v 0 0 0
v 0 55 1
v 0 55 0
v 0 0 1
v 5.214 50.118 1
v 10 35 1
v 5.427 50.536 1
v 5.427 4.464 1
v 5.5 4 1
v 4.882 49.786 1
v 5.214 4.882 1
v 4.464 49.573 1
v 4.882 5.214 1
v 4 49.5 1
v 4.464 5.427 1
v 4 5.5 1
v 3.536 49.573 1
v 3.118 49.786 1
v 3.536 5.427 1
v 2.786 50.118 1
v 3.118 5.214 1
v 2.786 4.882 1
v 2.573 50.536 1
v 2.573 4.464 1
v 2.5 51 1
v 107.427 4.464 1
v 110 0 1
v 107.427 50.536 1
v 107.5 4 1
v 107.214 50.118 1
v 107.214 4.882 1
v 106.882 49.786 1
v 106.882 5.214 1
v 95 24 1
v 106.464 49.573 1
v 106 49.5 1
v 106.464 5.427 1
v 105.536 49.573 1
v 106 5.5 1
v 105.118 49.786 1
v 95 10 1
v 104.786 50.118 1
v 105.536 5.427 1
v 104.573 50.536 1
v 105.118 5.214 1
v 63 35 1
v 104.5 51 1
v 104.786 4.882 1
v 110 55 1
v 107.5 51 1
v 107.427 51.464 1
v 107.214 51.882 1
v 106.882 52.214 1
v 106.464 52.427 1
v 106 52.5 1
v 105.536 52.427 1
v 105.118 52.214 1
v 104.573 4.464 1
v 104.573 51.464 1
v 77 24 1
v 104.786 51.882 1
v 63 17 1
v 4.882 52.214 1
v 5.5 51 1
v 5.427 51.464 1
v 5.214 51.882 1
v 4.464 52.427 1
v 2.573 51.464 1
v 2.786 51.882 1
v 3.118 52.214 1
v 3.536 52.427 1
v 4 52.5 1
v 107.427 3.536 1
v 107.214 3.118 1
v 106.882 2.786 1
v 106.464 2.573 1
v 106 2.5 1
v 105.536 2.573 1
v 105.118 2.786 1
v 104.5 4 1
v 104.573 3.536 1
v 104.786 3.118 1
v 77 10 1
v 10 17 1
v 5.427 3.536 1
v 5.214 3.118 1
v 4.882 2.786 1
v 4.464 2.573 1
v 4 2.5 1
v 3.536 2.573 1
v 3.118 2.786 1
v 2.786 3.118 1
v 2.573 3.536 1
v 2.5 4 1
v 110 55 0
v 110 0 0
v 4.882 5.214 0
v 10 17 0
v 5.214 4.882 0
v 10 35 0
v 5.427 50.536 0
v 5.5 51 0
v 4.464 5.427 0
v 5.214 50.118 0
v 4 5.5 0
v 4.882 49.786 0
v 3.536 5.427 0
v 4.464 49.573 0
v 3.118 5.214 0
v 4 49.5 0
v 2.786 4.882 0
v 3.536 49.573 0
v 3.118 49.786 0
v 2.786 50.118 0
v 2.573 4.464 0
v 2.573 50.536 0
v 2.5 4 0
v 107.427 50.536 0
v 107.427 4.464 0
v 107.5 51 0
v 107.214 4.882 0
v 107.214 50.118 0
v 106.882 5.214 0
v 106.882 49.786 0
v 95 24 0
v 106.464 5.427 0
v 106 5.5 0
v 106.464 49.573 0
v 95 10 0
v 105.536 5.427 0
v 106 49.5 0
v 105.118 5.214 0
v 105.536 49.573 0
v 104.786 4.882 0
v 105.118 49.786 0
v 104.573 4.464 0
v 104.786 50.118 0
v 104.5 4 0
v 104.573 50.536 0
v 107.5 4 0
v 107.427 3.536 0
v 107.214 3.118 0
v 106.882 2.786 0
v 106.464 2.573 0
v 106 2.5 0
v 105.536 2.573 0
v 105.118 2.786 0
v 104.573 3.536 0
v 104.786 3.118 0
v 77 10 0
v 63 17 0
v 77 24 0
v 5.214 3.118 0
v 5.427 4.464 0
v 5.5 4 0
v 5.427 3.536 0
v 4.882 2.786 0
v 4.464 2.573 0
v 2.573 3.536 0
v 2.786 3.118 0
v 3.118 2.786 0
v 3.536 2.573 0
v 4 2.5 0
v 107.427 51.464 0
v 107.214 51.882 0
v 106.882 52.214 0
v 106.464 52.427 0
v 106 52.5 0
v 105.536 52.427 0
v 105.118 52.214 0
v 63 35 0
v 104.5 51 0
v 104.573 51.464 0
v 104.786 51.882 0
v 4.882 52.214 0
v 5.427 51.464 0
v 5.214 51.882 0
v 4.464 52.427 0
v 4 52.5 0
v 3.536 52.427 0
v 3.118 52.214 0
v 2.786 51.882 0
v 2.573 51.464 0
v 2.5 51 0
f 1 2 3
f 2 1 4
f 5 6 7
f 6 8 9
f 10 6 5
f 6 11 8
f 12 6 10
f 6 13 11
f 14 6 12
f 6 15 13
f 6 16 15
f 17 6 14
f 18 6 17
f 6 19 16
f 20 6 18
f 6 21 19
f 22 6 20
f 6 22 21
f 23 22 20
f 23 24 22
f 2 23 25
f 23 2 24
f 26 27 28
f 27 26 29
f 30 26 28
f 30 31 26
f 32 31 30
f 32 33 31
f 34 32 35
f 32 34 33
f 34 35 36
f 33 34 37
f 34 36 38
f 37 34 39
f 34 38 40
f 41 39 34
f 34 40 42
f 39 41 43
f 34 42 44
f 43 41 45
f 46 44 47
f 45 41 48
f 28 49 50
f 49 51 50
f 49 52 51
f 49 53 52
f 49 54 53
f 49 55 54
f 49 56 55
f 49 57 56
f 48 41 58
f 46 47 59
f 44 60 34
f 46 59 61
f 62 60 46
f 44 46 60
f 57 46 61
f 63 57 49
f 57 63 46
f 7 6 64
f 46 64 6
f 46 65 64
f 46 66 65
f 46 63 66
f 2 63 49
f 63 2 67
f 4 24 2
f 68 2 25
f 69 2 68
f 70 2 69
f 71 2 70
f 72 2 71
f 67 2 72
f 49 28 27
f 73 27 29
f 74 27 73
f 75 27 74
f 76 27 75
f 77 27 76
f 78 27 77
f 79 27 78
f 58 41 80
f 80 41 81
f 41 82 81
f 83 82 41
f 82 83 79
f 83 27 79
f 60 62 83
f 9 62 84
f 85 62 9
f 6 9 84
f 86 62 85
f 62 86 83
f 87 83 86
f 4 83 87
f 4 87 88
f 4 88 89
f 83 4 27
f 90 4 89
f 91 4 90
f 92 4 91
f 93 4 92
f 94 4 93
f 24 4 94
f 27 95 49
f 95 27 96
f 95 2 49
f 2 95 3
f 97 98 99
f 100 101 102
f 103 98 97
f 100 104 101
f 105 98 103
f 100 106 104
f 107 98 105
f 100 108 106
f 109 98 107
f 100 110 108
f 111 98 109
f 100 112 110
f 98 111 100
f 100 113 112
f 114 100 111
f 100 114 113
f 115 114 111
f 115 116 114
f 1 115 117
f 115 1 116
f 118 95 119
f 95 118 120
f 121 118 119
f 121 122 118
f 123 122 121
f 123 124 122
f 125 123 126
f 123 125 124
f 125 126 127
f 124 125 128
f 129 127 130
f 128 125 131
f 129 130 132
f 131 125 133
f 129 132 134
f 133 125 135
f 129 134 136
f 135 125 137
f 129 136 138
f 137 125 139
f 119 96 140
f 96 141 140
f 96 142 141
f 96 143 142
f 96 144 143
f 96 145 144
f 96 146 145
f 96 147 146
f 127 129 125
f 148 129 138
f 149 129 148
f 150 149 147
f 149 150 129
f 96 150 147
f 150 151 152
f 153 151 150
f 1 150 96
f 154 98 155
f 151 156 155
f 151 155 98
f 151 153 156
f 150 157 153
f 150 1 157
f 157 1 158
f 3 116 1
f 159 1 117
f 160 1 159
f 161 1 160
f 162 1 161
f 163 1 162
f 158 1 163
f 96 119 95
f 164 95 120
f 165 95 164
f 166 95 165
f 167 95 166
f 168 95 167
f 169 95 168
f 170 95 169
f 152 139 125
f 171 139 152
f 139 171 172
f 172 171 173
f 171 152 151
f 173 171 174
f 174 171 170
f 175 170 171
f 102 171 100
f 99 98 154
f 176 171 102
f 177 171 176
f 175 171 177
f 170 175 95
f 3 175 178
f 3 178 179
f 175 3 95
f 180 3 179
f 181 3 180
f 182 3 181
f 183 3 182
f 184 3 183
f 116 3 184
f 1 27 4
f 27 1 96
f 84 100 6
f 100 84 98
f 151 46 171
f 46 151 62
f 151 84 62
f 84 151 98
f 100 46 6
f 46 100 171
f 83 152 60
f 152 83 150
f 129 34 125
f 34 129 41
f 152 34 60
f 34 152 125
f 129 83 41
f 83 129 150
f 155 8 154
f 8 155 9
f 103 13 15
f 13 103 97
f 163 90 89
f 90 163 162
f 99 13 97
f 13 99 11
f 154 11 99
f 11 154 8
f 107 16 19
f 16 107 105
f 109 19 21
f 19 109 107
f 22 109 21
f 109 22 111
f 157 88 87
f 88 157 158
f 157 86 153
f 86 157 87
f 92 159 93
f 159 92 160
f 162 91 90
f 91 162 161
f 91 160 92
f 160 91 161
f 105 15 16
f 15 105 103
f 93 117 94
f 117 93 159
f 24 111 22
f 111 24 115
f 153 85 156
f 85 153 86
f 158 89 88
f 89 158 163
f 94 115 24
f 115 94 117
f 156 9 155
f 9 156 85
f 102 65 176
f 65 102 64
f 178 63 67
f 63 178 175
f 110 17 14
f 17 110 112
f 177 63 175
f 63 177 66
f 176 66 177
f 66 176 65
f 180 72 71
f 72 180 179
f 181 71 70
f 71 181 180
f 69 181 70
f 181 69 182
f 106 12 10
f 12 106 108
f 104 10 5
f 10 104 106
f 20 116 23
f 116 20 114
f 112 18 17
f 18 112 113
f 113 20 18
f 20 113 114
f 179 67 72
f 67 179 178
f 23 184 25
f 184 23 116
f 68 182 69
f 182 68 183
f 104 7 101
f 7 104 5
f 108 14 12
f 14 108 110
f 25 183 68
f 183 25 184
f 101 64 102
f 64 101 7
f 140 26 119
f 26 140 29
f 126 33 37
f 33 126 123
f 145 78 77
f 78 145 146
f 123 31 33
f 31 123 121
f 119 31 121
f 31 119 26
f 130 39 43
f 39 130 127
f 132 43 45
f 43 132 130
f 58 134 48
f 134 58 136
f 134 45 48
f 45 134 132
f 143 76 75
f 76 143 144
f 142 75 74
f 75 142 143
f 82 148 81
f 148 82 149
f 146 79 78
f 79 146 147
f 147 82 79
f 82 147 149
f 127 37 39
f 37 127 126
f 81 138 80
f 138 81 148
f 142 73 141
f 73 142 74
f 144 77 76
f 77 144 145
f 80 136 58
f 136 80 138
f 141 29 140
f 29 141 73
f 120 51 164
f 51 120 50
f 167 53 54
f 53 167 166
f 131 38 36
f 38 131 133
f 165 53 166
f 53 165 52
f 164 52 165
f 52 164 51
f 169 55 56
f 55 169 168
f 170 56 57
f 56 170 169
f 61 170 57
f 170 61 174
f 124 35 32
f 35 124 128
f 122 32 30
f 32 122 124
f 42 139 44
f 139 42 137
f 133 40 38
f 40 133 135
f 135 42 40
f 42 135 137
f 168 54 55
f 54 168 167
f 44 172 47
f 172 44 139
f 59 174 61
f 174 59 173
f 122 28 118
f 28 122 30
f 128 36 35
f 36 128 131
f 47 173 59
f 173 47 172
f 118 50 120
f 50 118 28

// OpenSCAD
module body() {
    color("Red") cube([110,55,1]); 
}

module bigFrame() {
    color("Red") cube([53,18,10]); 
}

module smallFrame() {
    color("Red") cube([18,14,10]); 
}

module hole() {
    color("blue") cylinder($fn=20, h=10, r=1.5);
}

module object(){
    difference() {
    body();
    translate([10,17,-5]) bigFrame();
    translate([77,10,-5]) smallFrame();
    translate([4,4,-5]) hole();
    translate([4,51,-5]) hole();
    translate([106,4,-5]) hole();
    translate([106,51,-5]) hole();
    }    
}

object();

/*
difference() {
    cube(30, center=true);
    sphere(20);
}
translate([0, 0, 30]) {
    cylinder(h=40, r=10);
}
    */
